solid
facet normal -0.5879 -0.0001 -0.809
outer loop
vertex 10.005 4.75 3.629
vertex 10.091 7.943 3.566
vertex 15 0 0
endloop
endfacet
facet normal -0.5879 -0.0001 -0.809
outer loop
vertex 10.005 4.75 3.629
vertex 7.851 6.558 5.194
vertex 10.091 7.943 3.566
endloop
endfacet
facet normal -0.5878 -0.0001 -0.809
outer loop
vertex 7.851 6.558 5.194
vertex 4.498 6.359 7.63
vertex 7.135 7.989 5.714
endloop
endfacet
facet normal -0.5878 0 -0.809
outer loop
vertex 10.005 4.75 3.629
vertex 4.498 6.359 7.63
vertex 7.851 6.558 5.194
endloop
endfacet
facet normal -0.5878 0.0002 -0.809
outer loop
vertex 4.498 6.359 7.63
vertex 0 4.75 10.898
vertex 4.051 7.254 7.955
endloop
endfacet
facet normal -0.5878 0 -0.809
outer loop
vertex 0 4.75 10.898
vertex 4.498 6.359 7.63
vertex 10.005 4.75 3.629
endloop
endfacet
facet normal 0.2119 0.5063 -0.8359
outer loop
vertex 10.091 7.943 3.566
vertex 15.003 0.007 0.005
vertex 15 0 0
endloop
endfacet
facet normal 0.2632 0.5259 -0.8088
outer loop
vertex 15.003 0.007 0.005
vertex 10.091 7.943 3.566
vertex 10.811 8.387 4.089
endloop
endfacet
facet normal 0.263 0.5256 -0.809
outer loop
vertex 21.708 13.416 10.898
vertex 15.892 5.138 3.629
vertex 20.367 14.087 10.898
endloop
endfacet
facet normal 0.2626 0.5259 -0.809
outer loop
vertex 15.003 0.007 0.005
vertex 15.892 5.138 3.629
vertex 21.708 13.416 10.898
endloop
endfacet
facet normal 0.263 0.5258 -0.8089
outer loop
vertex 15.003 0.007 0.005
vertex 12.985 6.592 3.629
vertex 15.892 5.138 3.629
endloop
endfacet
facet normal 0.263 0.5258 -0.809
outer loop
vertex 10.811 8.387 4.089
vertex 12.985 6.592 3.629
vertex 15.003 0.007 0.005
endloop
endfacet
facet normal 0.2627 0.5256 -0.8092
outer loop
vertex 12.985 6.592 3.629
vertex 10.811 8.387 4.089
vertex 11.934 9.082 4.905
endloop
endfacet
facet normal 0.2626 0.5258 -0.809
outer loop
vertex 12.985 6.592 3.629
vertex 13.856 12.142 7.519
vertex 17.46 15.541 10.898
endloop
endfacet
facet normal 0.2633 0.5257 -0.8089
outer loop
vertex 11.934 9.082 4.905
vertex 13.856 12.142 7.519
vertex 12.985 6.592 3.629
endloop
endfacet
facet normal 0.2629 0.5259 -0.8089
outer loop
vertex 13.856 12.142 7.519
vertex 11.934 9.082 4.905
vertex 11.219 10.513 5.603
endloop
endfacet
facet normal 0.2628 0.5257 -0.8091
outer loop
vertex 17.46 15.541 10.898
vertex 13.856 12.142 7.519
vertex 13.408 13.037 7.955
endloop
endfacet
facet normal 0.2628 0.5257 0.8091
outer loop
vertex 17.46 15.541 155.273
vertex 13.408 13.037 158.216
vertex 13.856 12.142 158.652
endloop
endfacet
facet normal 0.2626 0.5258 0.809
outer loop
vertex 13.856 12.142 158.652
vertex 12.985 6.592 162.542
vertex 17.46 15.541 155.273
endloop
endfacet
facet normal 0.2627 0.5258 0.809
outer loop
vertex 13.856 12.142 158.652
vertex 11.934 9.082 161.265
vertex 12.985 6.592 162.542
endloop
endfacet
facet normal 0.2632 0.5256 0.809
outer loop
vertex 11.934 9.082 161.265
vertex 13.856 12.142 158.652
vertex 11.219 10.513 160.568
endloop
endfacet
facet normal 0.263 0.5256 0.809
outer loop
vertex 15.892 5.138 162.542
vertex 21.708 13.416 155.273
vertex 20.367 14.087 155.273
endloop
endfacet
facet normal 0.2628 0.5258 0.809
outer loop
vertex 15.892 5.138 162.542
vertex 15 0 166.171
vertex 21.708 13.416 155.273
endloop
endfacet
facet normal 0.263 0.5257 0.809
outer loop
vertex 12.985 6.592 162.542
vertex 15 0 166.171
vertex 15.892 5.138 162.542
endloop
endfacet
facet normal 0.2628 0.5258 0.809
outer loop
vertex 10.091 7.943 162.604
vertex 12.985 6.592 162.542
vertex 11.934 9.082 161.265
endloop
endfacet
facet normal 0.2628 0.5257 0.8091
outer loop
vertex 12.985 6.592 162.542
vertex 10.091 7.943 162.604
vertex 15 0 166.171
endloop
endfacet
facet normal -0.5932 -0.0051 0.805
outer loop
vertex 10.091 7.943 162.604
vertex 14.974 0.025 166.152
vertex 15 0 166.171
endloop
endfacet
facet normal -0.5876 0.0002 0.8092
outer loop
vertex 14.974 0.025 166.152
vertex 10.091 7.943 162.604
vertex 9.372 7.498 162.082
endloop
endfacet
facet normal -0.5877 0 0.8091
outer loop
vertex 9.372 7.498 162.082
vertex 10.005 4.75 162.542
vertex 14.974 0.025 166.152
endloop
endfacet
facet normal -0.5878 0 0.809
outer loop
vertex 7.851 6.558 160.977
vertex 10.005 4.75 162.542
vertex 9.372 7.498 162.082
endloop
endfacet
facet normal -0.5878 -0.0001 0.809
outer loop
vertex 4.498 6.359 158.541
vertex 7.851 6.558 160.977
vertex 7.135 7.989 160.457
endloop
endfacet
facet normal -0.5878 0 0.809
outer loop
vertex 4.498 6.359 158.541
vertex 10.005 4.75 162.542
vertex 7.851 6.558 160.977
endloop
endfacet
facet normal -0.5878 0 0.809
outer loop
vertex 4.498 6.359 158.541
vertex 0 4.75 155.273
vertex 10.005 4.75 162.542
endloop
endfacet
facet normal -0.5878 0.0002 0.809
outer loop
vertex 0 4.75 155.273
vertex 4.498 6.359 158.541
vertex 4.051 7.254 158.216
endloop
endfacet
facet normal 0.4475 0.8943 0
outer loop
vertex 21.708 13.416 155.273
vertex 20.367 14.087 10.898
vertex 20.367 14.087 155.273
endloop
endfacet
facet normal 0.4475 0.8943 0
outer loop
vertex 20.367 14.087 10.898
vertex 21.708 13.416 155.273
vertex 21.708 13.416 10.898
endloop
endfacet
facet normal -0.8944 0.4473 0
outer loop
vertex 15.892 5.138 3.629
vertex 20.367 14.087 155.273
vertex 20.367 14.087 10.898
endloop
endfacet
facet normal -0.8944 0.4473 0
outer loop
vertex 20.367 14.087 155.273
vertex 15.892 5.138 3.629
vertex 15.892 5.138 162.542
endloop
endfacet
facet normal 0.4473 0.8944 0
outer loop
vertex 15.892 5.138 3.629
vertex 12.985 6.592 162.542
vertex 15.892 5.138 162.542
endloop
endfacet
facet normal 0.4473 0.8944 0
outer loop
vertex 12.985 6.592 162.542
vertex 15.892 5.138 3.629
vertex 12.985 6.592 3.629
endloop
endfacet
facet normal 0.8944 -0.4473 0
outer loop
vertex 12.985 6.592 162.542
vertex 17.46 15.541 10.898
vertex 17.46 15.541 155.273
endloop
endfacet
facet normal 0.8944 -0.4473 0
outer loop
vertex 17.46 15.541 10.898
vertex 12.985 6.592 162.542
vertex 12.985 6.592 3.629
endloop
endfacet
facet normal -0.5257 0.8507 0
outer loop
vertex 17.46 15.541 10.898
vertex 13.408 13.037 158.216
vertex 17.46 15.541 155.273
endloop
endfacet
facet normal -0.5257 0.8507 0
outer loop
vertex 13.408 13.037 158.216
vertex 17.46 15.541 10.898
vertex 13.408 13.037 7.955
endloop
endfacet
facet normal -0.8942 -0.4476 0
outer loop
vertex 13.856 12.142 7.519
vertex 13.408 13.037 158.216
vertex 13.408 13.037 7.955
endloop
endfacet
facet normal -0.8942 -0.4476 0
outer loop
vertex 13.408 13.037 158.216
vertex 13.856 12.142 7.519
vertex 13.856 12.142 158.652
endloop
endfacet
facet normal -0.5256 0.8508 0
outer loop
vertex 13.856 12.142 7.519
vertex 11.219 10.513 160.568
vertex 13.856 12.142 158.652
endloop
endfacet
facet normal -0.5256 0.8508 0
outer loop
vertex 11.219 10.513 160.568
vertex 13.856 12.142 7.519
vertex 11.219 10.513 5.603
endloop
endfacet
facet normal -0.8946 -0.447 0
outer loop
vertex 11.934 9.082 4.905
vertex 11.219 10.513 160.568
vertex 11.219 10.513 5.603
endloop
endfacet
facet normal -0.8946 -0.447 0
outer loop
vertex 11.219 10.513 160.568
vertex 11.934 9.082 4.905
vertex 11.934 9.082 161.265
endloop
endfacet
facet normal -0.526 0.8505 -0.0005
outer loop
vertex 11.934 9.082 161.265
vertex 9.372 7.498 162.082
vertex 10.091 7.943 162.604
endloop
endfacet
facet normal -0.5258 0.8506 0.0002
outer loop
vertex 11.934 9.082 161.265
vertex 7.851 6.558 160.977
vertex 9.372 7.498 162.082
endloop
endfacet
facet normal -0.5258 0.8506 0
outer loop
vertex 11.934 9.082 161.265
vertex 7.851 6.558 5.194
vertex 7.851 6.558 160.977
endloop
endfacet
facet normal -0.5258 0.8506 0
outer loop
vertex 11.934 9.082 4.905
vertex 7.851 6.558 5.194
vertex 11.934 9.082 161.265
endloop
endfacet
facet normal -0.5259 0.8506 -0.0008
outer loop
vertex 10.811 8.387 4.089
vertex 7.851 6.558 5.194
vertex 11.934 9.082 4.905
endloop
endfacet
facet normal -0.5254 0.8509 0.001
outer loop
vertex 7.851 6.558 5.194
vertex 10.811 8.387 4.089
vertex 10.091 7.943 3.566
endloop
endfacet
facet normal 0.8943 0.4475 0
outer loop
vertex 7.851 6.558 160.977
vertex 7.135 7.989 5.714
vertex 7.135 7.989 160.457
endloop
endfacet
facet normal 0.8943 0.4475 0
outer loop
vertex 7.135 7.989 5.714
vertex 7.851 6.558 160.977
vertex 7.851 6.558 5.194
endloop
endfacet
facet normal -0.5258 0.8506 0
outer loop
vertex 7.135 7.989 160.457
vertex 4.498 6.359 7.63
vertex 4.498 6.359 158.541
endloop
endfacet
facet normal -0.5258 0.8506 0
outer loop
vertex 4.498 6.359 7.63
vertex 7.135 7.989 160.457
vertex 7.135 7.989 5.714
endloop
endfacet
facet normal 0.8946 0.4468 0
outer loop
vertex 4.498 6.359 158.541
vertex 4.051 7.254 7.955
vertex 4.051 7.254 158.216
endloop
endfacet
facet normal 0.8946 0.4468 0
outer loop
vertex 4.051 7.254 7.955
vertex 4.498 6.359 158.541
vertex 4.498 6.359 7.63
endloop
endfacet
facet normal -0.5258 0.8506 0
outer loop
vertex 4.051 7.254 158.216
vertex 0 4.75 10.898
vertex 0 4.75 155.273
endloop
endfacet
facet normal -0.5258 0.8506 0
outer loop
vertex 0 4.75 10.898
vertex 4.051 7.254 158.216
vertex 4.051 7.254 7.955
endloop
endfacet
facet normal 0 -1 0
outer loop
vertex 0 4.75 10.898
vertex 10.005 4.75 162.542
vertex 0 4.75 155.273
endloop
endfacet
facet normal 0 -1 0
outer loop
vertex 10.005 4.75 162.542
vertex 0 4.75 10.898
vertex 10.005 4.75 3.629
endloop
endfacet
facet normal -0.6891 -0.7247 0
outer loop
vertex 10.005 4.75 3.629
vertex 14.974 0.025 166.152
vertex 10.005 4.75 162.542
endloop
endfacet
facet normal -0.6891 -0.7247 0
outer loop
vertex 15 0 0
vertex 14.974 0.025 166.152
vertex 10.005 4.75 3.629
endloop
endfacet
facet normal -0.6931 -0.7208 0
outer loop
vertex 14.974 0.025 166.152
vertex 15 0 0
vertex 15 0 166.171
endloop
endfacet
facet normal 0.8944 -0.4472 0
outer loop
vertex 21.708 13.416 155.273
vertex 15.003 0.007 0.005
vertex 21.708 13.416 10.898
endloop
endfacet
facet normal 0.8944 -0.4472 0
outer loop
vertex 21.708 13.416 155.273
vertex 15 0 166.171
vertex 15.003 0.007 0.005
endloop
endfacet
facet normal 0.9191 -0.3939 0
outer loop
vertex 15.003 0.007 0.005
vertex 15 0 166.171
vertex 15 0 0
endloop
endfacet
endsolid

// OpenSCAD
// Regular Dodecahedron Edge Ribs


// Cf. https://github.com/openscad/openscad/issues/4603 for a good discussion
// that helped resolve some of the issues in this design.

$fn = 40;

// Variable parameters to cusomize the edge ribs
paneEdge = (6 * 25.4); // paneEdge (6in x 25.4 mm/in)
edgeThickness = 1.5;   // thickness of the edge
ribWidth = 15;         // width of the rib
paneThickness = 3.25;  // thickness of the pane
channelWidth = 11;     // width of LED strip channel
channelDepth = 1;      // depth of LED strip channel
wireWidth = 3 * 1.6;   // width of wire channel (3x 22 AWG insulated wires)
wireDepth = 1.6;       // depth of wire channel (1x 22 AWG insulated wire)
dihedral = 116.56505;  // angle of polyhedron dihedral
interior = 108.0;      // angle of face interior
fudge = 0.01;          // render artifact elimination fudge factor
vertexHole = false;    // include a vertex hole for wire exit
splitSide = true;      // split off one side

// Calculated parameters
edge = 0.667 * ribWidth  * tan(interior / 2) + paneEdge;
echo("pane edge", paneEdge);
echo("edge", edge);

difference() {
    extruded_edge(edge, edgeThickness, ribWidth, paneThickness, channelWidth, channelDepth, wireWidth, wireDepth, splitSide, dihedral);
    bevel_cuts(ribWidth, interior, dihedral);
    translate([ribWidth,0,edge]) {
        rotate([0,0,180-dihedral]) {
            translate([ribWidth,0,0]) {
                rotate([0,180,0]) {
                    bevel_cuts(ribWidth, interior, dihedral);
                }
            }
        }
    }
    if (vertexHole) {
        wire_hole(ribWidth, wireDepth, interior, dihedral);
    }
}


// Vertex Wire hole
module wire_hole(ribWidth, wireDepth, interior, dihedral) {
    translate([ribWidth,0,0]) {
        rotate([interior - 90, 0, dihedral - 90]) {
            translate([0,20,0]) {
                rotate([90,0,0]) {
                    cylinder(h = 20, r = 2.5 * wireDepth);
                }
            }
        }
    }
}

// Bevel cuts for the end of the rib
module bevel_cuts(ribWidth, interior, dihedral) {
    union() {
        angle_cut(ribWidth, interior);
        translate([ribWidth,0,0]) {
            rotate([0,0,180-dihedral]) {
                translate([ribWidth, 0, 0]) {
                    mirror([1,0,0]) {
                        angle_cut(ribWidth, interior);
                    }
                }
            }
        }
    }
}


// Half of one bevel
module angle_cut(ribWidth, interior) {

    angle_ab = 90 - (interior / 2);

    ax = 0;
    ay = 0;
    az = 0;
    bx = ribWidth;
    by = 0;
    bz = 0;
    cx = 0;
    cy = 0;
    cz = ribWidth * tan(angle_ab);
    dx = 0;
    dy = 20;
    dz = 0;
    ex = ribWidth;
    ey = 20;
    ez = 0;
    fx = 0;
    fy = 20;
    fz = ribWidth * tan(angle_ab);

    polyhedron(
        points=[
            [ax-fudge, ay-fudge, az-fudge], // point a (0)
            [bx, by-fudge, bz],             // point b (1)
            [cx, cy-fudge, cz],             // point c (2)
            [dx-fudge, dy, dz-fudge],       // point d (3)
            [ex, ey, ez],                   // point e (4)
            [fx, fy, fz]                    // point f (5)
        ],
        faces=[
            [0, 3, 5, 2], // face A
            [0, 1, 4, 3], // face B
            [1, 2, 5, 4], // face C
            [3, 4, 5],    // face D
            [0, 2, 1]     // face E
        ],
        convexity=10
    );
};


// Rib extrusion
module extruded_edge(edge, edgeThickness, ribWidth, paneThickness, channelWidth, channelDepth, wireWidth, wireDepth, splitSide, dihedral) {

    linear_extrude(height=edge, center=false, convexity=10, twist=0, slices=20, scale=1) {
        
        ax = 0;
        ay = 0;
        bx = ribWidth;
        by = 0;
        cx = ribWidth + ribWidth * cos(180 - dihedral);
        cy = ribWidth * sin(180 - dihedral);
        dx = cx - edgeThickness * cos(dihedral - 90);
        dy = cy + edgeThickness * sin(dihedral - 90);
        ex = dx - 0.667 * ribWidth * cos(180 - dihedral);
        ey = dy - 0.667 * ribWidth * sin(180 - dihedral);
        fx = ex - paneThickness * cos(dihedral - 90);
        fy = ey + paneThickness * sin(dihedral - 90);
        gx = fx + 0.667 * ribWidth * cos(180 - dihedral);
        gy = fy + 0.667 * ribWidth * sin(180 - dihedral);
        px = 0;
        py = edgeThickness + paneThickness;
        qx = 0.667 * ribWidth;
        qy = py;
        rx = qx;
        ry = edgeThickness;
        sx = 0;
        sy = ry; 

        angle_opq = atan((gy - py) / gx);  // derived angle of inside edge
        gp = gx / cos(angle_opq);          // total width of inside edge
        gh = 0.5 * (gp - channelWidth);    // width of offset on either side of the LED channel
        ho = gp - 2 * gh;                  // derived width of LED channel (should match specified)
        jm = wireWidth;                    // total width of wire channel
        ij = 0.5 * (ho - jm);              // width of offset on either side of wire channel within the LED channel
        assert(ho == channelWidth, "Derived channel width does not match specified width");
        assert(jm < ho, "Total wire channel width exceeds the width of the LED strip");

        hx = gx - gh * cos(angle_opq);
        hy = gy - gh * sin(angle_opq);
        ix = hx + channelDepth * sin(90 - 2 * angle_opq);
        iy = hy - channelDepth * cos(90 - 2 * angle_opq);
        ox = px + gh * cos(angle_opq);
        oy = py + gh * sin(angle_opq);
        nx = ox + channelDepth * sin(90 - 2 * angle_opq);
        ny = oy - channelDepth * cos(90 - 2 * angle_opq);
        jx = ix - ij * cos(angle_opq);
        jy = iy - ij * sin(angle_opq);
        kx = jx + wireDepth * sin(90 - 2 * angle_opq);
        ky = jy - wireDepth * cos(90 - 2 * angle_opq);
        mx = nx + ij * cos(angle_opq);
        my = ny + ij * sin(angle_opq);
        lx = mx + wireDepth * sin(90 - 2 * angle_opq);
        ly = my - wireDepth * cos(90 - 2 * angle_opq);
                

        if (splitSide) {
            polygon([
                [bx, by], // point 'b'
                [cx, cy], // point 'c'
                [dx, dy], // point 'd'
                [ex, ey], // point 'e'
                [fx, fy], // point 'f'
                [gx, gy], // point 'g'
                [hx, hy], // point 'h'
                [ix, iy], // point 'i'
                [jx, jy], // point 'j'
                [kx, ky], // point 'k'
                [lx, ly], // point 'l'
                [mx, my], // point 'm'
                [nx, ny], // point 'n'
                [ox, oy], // point 'o'
                [px, py], // point 'p'
                [qx, qy], // point 'q'
            ]);
        } else {
            polygon([
                [ax, ay], // point 'a'
                [bx, by], // point 'b'
                [cx, cy], // point 'c'
                [dx, dy], // point 'd'
                [ex, ey], // point 'e'
                [fx, fy], // point 'f'
                [gx, gy], // point 'g'
                [hx, hy], // point 'h'
                [ix, iy], // point 'i'
                [jx, jy], // point 'j'
                [kx, ky], // point 'k'
                [lx, ly], // point 'l'
                [mx, my], // point 'm'
                [nx, ny], // point 'n'
                [ox, oy], // point 'o'
                [px, py], // point 'p'
                [qx, qy], // point 'q'
                [rx, ry], // point 'r'
                [sx, sy]  // point 's'
            ]);
        };
    };
};
